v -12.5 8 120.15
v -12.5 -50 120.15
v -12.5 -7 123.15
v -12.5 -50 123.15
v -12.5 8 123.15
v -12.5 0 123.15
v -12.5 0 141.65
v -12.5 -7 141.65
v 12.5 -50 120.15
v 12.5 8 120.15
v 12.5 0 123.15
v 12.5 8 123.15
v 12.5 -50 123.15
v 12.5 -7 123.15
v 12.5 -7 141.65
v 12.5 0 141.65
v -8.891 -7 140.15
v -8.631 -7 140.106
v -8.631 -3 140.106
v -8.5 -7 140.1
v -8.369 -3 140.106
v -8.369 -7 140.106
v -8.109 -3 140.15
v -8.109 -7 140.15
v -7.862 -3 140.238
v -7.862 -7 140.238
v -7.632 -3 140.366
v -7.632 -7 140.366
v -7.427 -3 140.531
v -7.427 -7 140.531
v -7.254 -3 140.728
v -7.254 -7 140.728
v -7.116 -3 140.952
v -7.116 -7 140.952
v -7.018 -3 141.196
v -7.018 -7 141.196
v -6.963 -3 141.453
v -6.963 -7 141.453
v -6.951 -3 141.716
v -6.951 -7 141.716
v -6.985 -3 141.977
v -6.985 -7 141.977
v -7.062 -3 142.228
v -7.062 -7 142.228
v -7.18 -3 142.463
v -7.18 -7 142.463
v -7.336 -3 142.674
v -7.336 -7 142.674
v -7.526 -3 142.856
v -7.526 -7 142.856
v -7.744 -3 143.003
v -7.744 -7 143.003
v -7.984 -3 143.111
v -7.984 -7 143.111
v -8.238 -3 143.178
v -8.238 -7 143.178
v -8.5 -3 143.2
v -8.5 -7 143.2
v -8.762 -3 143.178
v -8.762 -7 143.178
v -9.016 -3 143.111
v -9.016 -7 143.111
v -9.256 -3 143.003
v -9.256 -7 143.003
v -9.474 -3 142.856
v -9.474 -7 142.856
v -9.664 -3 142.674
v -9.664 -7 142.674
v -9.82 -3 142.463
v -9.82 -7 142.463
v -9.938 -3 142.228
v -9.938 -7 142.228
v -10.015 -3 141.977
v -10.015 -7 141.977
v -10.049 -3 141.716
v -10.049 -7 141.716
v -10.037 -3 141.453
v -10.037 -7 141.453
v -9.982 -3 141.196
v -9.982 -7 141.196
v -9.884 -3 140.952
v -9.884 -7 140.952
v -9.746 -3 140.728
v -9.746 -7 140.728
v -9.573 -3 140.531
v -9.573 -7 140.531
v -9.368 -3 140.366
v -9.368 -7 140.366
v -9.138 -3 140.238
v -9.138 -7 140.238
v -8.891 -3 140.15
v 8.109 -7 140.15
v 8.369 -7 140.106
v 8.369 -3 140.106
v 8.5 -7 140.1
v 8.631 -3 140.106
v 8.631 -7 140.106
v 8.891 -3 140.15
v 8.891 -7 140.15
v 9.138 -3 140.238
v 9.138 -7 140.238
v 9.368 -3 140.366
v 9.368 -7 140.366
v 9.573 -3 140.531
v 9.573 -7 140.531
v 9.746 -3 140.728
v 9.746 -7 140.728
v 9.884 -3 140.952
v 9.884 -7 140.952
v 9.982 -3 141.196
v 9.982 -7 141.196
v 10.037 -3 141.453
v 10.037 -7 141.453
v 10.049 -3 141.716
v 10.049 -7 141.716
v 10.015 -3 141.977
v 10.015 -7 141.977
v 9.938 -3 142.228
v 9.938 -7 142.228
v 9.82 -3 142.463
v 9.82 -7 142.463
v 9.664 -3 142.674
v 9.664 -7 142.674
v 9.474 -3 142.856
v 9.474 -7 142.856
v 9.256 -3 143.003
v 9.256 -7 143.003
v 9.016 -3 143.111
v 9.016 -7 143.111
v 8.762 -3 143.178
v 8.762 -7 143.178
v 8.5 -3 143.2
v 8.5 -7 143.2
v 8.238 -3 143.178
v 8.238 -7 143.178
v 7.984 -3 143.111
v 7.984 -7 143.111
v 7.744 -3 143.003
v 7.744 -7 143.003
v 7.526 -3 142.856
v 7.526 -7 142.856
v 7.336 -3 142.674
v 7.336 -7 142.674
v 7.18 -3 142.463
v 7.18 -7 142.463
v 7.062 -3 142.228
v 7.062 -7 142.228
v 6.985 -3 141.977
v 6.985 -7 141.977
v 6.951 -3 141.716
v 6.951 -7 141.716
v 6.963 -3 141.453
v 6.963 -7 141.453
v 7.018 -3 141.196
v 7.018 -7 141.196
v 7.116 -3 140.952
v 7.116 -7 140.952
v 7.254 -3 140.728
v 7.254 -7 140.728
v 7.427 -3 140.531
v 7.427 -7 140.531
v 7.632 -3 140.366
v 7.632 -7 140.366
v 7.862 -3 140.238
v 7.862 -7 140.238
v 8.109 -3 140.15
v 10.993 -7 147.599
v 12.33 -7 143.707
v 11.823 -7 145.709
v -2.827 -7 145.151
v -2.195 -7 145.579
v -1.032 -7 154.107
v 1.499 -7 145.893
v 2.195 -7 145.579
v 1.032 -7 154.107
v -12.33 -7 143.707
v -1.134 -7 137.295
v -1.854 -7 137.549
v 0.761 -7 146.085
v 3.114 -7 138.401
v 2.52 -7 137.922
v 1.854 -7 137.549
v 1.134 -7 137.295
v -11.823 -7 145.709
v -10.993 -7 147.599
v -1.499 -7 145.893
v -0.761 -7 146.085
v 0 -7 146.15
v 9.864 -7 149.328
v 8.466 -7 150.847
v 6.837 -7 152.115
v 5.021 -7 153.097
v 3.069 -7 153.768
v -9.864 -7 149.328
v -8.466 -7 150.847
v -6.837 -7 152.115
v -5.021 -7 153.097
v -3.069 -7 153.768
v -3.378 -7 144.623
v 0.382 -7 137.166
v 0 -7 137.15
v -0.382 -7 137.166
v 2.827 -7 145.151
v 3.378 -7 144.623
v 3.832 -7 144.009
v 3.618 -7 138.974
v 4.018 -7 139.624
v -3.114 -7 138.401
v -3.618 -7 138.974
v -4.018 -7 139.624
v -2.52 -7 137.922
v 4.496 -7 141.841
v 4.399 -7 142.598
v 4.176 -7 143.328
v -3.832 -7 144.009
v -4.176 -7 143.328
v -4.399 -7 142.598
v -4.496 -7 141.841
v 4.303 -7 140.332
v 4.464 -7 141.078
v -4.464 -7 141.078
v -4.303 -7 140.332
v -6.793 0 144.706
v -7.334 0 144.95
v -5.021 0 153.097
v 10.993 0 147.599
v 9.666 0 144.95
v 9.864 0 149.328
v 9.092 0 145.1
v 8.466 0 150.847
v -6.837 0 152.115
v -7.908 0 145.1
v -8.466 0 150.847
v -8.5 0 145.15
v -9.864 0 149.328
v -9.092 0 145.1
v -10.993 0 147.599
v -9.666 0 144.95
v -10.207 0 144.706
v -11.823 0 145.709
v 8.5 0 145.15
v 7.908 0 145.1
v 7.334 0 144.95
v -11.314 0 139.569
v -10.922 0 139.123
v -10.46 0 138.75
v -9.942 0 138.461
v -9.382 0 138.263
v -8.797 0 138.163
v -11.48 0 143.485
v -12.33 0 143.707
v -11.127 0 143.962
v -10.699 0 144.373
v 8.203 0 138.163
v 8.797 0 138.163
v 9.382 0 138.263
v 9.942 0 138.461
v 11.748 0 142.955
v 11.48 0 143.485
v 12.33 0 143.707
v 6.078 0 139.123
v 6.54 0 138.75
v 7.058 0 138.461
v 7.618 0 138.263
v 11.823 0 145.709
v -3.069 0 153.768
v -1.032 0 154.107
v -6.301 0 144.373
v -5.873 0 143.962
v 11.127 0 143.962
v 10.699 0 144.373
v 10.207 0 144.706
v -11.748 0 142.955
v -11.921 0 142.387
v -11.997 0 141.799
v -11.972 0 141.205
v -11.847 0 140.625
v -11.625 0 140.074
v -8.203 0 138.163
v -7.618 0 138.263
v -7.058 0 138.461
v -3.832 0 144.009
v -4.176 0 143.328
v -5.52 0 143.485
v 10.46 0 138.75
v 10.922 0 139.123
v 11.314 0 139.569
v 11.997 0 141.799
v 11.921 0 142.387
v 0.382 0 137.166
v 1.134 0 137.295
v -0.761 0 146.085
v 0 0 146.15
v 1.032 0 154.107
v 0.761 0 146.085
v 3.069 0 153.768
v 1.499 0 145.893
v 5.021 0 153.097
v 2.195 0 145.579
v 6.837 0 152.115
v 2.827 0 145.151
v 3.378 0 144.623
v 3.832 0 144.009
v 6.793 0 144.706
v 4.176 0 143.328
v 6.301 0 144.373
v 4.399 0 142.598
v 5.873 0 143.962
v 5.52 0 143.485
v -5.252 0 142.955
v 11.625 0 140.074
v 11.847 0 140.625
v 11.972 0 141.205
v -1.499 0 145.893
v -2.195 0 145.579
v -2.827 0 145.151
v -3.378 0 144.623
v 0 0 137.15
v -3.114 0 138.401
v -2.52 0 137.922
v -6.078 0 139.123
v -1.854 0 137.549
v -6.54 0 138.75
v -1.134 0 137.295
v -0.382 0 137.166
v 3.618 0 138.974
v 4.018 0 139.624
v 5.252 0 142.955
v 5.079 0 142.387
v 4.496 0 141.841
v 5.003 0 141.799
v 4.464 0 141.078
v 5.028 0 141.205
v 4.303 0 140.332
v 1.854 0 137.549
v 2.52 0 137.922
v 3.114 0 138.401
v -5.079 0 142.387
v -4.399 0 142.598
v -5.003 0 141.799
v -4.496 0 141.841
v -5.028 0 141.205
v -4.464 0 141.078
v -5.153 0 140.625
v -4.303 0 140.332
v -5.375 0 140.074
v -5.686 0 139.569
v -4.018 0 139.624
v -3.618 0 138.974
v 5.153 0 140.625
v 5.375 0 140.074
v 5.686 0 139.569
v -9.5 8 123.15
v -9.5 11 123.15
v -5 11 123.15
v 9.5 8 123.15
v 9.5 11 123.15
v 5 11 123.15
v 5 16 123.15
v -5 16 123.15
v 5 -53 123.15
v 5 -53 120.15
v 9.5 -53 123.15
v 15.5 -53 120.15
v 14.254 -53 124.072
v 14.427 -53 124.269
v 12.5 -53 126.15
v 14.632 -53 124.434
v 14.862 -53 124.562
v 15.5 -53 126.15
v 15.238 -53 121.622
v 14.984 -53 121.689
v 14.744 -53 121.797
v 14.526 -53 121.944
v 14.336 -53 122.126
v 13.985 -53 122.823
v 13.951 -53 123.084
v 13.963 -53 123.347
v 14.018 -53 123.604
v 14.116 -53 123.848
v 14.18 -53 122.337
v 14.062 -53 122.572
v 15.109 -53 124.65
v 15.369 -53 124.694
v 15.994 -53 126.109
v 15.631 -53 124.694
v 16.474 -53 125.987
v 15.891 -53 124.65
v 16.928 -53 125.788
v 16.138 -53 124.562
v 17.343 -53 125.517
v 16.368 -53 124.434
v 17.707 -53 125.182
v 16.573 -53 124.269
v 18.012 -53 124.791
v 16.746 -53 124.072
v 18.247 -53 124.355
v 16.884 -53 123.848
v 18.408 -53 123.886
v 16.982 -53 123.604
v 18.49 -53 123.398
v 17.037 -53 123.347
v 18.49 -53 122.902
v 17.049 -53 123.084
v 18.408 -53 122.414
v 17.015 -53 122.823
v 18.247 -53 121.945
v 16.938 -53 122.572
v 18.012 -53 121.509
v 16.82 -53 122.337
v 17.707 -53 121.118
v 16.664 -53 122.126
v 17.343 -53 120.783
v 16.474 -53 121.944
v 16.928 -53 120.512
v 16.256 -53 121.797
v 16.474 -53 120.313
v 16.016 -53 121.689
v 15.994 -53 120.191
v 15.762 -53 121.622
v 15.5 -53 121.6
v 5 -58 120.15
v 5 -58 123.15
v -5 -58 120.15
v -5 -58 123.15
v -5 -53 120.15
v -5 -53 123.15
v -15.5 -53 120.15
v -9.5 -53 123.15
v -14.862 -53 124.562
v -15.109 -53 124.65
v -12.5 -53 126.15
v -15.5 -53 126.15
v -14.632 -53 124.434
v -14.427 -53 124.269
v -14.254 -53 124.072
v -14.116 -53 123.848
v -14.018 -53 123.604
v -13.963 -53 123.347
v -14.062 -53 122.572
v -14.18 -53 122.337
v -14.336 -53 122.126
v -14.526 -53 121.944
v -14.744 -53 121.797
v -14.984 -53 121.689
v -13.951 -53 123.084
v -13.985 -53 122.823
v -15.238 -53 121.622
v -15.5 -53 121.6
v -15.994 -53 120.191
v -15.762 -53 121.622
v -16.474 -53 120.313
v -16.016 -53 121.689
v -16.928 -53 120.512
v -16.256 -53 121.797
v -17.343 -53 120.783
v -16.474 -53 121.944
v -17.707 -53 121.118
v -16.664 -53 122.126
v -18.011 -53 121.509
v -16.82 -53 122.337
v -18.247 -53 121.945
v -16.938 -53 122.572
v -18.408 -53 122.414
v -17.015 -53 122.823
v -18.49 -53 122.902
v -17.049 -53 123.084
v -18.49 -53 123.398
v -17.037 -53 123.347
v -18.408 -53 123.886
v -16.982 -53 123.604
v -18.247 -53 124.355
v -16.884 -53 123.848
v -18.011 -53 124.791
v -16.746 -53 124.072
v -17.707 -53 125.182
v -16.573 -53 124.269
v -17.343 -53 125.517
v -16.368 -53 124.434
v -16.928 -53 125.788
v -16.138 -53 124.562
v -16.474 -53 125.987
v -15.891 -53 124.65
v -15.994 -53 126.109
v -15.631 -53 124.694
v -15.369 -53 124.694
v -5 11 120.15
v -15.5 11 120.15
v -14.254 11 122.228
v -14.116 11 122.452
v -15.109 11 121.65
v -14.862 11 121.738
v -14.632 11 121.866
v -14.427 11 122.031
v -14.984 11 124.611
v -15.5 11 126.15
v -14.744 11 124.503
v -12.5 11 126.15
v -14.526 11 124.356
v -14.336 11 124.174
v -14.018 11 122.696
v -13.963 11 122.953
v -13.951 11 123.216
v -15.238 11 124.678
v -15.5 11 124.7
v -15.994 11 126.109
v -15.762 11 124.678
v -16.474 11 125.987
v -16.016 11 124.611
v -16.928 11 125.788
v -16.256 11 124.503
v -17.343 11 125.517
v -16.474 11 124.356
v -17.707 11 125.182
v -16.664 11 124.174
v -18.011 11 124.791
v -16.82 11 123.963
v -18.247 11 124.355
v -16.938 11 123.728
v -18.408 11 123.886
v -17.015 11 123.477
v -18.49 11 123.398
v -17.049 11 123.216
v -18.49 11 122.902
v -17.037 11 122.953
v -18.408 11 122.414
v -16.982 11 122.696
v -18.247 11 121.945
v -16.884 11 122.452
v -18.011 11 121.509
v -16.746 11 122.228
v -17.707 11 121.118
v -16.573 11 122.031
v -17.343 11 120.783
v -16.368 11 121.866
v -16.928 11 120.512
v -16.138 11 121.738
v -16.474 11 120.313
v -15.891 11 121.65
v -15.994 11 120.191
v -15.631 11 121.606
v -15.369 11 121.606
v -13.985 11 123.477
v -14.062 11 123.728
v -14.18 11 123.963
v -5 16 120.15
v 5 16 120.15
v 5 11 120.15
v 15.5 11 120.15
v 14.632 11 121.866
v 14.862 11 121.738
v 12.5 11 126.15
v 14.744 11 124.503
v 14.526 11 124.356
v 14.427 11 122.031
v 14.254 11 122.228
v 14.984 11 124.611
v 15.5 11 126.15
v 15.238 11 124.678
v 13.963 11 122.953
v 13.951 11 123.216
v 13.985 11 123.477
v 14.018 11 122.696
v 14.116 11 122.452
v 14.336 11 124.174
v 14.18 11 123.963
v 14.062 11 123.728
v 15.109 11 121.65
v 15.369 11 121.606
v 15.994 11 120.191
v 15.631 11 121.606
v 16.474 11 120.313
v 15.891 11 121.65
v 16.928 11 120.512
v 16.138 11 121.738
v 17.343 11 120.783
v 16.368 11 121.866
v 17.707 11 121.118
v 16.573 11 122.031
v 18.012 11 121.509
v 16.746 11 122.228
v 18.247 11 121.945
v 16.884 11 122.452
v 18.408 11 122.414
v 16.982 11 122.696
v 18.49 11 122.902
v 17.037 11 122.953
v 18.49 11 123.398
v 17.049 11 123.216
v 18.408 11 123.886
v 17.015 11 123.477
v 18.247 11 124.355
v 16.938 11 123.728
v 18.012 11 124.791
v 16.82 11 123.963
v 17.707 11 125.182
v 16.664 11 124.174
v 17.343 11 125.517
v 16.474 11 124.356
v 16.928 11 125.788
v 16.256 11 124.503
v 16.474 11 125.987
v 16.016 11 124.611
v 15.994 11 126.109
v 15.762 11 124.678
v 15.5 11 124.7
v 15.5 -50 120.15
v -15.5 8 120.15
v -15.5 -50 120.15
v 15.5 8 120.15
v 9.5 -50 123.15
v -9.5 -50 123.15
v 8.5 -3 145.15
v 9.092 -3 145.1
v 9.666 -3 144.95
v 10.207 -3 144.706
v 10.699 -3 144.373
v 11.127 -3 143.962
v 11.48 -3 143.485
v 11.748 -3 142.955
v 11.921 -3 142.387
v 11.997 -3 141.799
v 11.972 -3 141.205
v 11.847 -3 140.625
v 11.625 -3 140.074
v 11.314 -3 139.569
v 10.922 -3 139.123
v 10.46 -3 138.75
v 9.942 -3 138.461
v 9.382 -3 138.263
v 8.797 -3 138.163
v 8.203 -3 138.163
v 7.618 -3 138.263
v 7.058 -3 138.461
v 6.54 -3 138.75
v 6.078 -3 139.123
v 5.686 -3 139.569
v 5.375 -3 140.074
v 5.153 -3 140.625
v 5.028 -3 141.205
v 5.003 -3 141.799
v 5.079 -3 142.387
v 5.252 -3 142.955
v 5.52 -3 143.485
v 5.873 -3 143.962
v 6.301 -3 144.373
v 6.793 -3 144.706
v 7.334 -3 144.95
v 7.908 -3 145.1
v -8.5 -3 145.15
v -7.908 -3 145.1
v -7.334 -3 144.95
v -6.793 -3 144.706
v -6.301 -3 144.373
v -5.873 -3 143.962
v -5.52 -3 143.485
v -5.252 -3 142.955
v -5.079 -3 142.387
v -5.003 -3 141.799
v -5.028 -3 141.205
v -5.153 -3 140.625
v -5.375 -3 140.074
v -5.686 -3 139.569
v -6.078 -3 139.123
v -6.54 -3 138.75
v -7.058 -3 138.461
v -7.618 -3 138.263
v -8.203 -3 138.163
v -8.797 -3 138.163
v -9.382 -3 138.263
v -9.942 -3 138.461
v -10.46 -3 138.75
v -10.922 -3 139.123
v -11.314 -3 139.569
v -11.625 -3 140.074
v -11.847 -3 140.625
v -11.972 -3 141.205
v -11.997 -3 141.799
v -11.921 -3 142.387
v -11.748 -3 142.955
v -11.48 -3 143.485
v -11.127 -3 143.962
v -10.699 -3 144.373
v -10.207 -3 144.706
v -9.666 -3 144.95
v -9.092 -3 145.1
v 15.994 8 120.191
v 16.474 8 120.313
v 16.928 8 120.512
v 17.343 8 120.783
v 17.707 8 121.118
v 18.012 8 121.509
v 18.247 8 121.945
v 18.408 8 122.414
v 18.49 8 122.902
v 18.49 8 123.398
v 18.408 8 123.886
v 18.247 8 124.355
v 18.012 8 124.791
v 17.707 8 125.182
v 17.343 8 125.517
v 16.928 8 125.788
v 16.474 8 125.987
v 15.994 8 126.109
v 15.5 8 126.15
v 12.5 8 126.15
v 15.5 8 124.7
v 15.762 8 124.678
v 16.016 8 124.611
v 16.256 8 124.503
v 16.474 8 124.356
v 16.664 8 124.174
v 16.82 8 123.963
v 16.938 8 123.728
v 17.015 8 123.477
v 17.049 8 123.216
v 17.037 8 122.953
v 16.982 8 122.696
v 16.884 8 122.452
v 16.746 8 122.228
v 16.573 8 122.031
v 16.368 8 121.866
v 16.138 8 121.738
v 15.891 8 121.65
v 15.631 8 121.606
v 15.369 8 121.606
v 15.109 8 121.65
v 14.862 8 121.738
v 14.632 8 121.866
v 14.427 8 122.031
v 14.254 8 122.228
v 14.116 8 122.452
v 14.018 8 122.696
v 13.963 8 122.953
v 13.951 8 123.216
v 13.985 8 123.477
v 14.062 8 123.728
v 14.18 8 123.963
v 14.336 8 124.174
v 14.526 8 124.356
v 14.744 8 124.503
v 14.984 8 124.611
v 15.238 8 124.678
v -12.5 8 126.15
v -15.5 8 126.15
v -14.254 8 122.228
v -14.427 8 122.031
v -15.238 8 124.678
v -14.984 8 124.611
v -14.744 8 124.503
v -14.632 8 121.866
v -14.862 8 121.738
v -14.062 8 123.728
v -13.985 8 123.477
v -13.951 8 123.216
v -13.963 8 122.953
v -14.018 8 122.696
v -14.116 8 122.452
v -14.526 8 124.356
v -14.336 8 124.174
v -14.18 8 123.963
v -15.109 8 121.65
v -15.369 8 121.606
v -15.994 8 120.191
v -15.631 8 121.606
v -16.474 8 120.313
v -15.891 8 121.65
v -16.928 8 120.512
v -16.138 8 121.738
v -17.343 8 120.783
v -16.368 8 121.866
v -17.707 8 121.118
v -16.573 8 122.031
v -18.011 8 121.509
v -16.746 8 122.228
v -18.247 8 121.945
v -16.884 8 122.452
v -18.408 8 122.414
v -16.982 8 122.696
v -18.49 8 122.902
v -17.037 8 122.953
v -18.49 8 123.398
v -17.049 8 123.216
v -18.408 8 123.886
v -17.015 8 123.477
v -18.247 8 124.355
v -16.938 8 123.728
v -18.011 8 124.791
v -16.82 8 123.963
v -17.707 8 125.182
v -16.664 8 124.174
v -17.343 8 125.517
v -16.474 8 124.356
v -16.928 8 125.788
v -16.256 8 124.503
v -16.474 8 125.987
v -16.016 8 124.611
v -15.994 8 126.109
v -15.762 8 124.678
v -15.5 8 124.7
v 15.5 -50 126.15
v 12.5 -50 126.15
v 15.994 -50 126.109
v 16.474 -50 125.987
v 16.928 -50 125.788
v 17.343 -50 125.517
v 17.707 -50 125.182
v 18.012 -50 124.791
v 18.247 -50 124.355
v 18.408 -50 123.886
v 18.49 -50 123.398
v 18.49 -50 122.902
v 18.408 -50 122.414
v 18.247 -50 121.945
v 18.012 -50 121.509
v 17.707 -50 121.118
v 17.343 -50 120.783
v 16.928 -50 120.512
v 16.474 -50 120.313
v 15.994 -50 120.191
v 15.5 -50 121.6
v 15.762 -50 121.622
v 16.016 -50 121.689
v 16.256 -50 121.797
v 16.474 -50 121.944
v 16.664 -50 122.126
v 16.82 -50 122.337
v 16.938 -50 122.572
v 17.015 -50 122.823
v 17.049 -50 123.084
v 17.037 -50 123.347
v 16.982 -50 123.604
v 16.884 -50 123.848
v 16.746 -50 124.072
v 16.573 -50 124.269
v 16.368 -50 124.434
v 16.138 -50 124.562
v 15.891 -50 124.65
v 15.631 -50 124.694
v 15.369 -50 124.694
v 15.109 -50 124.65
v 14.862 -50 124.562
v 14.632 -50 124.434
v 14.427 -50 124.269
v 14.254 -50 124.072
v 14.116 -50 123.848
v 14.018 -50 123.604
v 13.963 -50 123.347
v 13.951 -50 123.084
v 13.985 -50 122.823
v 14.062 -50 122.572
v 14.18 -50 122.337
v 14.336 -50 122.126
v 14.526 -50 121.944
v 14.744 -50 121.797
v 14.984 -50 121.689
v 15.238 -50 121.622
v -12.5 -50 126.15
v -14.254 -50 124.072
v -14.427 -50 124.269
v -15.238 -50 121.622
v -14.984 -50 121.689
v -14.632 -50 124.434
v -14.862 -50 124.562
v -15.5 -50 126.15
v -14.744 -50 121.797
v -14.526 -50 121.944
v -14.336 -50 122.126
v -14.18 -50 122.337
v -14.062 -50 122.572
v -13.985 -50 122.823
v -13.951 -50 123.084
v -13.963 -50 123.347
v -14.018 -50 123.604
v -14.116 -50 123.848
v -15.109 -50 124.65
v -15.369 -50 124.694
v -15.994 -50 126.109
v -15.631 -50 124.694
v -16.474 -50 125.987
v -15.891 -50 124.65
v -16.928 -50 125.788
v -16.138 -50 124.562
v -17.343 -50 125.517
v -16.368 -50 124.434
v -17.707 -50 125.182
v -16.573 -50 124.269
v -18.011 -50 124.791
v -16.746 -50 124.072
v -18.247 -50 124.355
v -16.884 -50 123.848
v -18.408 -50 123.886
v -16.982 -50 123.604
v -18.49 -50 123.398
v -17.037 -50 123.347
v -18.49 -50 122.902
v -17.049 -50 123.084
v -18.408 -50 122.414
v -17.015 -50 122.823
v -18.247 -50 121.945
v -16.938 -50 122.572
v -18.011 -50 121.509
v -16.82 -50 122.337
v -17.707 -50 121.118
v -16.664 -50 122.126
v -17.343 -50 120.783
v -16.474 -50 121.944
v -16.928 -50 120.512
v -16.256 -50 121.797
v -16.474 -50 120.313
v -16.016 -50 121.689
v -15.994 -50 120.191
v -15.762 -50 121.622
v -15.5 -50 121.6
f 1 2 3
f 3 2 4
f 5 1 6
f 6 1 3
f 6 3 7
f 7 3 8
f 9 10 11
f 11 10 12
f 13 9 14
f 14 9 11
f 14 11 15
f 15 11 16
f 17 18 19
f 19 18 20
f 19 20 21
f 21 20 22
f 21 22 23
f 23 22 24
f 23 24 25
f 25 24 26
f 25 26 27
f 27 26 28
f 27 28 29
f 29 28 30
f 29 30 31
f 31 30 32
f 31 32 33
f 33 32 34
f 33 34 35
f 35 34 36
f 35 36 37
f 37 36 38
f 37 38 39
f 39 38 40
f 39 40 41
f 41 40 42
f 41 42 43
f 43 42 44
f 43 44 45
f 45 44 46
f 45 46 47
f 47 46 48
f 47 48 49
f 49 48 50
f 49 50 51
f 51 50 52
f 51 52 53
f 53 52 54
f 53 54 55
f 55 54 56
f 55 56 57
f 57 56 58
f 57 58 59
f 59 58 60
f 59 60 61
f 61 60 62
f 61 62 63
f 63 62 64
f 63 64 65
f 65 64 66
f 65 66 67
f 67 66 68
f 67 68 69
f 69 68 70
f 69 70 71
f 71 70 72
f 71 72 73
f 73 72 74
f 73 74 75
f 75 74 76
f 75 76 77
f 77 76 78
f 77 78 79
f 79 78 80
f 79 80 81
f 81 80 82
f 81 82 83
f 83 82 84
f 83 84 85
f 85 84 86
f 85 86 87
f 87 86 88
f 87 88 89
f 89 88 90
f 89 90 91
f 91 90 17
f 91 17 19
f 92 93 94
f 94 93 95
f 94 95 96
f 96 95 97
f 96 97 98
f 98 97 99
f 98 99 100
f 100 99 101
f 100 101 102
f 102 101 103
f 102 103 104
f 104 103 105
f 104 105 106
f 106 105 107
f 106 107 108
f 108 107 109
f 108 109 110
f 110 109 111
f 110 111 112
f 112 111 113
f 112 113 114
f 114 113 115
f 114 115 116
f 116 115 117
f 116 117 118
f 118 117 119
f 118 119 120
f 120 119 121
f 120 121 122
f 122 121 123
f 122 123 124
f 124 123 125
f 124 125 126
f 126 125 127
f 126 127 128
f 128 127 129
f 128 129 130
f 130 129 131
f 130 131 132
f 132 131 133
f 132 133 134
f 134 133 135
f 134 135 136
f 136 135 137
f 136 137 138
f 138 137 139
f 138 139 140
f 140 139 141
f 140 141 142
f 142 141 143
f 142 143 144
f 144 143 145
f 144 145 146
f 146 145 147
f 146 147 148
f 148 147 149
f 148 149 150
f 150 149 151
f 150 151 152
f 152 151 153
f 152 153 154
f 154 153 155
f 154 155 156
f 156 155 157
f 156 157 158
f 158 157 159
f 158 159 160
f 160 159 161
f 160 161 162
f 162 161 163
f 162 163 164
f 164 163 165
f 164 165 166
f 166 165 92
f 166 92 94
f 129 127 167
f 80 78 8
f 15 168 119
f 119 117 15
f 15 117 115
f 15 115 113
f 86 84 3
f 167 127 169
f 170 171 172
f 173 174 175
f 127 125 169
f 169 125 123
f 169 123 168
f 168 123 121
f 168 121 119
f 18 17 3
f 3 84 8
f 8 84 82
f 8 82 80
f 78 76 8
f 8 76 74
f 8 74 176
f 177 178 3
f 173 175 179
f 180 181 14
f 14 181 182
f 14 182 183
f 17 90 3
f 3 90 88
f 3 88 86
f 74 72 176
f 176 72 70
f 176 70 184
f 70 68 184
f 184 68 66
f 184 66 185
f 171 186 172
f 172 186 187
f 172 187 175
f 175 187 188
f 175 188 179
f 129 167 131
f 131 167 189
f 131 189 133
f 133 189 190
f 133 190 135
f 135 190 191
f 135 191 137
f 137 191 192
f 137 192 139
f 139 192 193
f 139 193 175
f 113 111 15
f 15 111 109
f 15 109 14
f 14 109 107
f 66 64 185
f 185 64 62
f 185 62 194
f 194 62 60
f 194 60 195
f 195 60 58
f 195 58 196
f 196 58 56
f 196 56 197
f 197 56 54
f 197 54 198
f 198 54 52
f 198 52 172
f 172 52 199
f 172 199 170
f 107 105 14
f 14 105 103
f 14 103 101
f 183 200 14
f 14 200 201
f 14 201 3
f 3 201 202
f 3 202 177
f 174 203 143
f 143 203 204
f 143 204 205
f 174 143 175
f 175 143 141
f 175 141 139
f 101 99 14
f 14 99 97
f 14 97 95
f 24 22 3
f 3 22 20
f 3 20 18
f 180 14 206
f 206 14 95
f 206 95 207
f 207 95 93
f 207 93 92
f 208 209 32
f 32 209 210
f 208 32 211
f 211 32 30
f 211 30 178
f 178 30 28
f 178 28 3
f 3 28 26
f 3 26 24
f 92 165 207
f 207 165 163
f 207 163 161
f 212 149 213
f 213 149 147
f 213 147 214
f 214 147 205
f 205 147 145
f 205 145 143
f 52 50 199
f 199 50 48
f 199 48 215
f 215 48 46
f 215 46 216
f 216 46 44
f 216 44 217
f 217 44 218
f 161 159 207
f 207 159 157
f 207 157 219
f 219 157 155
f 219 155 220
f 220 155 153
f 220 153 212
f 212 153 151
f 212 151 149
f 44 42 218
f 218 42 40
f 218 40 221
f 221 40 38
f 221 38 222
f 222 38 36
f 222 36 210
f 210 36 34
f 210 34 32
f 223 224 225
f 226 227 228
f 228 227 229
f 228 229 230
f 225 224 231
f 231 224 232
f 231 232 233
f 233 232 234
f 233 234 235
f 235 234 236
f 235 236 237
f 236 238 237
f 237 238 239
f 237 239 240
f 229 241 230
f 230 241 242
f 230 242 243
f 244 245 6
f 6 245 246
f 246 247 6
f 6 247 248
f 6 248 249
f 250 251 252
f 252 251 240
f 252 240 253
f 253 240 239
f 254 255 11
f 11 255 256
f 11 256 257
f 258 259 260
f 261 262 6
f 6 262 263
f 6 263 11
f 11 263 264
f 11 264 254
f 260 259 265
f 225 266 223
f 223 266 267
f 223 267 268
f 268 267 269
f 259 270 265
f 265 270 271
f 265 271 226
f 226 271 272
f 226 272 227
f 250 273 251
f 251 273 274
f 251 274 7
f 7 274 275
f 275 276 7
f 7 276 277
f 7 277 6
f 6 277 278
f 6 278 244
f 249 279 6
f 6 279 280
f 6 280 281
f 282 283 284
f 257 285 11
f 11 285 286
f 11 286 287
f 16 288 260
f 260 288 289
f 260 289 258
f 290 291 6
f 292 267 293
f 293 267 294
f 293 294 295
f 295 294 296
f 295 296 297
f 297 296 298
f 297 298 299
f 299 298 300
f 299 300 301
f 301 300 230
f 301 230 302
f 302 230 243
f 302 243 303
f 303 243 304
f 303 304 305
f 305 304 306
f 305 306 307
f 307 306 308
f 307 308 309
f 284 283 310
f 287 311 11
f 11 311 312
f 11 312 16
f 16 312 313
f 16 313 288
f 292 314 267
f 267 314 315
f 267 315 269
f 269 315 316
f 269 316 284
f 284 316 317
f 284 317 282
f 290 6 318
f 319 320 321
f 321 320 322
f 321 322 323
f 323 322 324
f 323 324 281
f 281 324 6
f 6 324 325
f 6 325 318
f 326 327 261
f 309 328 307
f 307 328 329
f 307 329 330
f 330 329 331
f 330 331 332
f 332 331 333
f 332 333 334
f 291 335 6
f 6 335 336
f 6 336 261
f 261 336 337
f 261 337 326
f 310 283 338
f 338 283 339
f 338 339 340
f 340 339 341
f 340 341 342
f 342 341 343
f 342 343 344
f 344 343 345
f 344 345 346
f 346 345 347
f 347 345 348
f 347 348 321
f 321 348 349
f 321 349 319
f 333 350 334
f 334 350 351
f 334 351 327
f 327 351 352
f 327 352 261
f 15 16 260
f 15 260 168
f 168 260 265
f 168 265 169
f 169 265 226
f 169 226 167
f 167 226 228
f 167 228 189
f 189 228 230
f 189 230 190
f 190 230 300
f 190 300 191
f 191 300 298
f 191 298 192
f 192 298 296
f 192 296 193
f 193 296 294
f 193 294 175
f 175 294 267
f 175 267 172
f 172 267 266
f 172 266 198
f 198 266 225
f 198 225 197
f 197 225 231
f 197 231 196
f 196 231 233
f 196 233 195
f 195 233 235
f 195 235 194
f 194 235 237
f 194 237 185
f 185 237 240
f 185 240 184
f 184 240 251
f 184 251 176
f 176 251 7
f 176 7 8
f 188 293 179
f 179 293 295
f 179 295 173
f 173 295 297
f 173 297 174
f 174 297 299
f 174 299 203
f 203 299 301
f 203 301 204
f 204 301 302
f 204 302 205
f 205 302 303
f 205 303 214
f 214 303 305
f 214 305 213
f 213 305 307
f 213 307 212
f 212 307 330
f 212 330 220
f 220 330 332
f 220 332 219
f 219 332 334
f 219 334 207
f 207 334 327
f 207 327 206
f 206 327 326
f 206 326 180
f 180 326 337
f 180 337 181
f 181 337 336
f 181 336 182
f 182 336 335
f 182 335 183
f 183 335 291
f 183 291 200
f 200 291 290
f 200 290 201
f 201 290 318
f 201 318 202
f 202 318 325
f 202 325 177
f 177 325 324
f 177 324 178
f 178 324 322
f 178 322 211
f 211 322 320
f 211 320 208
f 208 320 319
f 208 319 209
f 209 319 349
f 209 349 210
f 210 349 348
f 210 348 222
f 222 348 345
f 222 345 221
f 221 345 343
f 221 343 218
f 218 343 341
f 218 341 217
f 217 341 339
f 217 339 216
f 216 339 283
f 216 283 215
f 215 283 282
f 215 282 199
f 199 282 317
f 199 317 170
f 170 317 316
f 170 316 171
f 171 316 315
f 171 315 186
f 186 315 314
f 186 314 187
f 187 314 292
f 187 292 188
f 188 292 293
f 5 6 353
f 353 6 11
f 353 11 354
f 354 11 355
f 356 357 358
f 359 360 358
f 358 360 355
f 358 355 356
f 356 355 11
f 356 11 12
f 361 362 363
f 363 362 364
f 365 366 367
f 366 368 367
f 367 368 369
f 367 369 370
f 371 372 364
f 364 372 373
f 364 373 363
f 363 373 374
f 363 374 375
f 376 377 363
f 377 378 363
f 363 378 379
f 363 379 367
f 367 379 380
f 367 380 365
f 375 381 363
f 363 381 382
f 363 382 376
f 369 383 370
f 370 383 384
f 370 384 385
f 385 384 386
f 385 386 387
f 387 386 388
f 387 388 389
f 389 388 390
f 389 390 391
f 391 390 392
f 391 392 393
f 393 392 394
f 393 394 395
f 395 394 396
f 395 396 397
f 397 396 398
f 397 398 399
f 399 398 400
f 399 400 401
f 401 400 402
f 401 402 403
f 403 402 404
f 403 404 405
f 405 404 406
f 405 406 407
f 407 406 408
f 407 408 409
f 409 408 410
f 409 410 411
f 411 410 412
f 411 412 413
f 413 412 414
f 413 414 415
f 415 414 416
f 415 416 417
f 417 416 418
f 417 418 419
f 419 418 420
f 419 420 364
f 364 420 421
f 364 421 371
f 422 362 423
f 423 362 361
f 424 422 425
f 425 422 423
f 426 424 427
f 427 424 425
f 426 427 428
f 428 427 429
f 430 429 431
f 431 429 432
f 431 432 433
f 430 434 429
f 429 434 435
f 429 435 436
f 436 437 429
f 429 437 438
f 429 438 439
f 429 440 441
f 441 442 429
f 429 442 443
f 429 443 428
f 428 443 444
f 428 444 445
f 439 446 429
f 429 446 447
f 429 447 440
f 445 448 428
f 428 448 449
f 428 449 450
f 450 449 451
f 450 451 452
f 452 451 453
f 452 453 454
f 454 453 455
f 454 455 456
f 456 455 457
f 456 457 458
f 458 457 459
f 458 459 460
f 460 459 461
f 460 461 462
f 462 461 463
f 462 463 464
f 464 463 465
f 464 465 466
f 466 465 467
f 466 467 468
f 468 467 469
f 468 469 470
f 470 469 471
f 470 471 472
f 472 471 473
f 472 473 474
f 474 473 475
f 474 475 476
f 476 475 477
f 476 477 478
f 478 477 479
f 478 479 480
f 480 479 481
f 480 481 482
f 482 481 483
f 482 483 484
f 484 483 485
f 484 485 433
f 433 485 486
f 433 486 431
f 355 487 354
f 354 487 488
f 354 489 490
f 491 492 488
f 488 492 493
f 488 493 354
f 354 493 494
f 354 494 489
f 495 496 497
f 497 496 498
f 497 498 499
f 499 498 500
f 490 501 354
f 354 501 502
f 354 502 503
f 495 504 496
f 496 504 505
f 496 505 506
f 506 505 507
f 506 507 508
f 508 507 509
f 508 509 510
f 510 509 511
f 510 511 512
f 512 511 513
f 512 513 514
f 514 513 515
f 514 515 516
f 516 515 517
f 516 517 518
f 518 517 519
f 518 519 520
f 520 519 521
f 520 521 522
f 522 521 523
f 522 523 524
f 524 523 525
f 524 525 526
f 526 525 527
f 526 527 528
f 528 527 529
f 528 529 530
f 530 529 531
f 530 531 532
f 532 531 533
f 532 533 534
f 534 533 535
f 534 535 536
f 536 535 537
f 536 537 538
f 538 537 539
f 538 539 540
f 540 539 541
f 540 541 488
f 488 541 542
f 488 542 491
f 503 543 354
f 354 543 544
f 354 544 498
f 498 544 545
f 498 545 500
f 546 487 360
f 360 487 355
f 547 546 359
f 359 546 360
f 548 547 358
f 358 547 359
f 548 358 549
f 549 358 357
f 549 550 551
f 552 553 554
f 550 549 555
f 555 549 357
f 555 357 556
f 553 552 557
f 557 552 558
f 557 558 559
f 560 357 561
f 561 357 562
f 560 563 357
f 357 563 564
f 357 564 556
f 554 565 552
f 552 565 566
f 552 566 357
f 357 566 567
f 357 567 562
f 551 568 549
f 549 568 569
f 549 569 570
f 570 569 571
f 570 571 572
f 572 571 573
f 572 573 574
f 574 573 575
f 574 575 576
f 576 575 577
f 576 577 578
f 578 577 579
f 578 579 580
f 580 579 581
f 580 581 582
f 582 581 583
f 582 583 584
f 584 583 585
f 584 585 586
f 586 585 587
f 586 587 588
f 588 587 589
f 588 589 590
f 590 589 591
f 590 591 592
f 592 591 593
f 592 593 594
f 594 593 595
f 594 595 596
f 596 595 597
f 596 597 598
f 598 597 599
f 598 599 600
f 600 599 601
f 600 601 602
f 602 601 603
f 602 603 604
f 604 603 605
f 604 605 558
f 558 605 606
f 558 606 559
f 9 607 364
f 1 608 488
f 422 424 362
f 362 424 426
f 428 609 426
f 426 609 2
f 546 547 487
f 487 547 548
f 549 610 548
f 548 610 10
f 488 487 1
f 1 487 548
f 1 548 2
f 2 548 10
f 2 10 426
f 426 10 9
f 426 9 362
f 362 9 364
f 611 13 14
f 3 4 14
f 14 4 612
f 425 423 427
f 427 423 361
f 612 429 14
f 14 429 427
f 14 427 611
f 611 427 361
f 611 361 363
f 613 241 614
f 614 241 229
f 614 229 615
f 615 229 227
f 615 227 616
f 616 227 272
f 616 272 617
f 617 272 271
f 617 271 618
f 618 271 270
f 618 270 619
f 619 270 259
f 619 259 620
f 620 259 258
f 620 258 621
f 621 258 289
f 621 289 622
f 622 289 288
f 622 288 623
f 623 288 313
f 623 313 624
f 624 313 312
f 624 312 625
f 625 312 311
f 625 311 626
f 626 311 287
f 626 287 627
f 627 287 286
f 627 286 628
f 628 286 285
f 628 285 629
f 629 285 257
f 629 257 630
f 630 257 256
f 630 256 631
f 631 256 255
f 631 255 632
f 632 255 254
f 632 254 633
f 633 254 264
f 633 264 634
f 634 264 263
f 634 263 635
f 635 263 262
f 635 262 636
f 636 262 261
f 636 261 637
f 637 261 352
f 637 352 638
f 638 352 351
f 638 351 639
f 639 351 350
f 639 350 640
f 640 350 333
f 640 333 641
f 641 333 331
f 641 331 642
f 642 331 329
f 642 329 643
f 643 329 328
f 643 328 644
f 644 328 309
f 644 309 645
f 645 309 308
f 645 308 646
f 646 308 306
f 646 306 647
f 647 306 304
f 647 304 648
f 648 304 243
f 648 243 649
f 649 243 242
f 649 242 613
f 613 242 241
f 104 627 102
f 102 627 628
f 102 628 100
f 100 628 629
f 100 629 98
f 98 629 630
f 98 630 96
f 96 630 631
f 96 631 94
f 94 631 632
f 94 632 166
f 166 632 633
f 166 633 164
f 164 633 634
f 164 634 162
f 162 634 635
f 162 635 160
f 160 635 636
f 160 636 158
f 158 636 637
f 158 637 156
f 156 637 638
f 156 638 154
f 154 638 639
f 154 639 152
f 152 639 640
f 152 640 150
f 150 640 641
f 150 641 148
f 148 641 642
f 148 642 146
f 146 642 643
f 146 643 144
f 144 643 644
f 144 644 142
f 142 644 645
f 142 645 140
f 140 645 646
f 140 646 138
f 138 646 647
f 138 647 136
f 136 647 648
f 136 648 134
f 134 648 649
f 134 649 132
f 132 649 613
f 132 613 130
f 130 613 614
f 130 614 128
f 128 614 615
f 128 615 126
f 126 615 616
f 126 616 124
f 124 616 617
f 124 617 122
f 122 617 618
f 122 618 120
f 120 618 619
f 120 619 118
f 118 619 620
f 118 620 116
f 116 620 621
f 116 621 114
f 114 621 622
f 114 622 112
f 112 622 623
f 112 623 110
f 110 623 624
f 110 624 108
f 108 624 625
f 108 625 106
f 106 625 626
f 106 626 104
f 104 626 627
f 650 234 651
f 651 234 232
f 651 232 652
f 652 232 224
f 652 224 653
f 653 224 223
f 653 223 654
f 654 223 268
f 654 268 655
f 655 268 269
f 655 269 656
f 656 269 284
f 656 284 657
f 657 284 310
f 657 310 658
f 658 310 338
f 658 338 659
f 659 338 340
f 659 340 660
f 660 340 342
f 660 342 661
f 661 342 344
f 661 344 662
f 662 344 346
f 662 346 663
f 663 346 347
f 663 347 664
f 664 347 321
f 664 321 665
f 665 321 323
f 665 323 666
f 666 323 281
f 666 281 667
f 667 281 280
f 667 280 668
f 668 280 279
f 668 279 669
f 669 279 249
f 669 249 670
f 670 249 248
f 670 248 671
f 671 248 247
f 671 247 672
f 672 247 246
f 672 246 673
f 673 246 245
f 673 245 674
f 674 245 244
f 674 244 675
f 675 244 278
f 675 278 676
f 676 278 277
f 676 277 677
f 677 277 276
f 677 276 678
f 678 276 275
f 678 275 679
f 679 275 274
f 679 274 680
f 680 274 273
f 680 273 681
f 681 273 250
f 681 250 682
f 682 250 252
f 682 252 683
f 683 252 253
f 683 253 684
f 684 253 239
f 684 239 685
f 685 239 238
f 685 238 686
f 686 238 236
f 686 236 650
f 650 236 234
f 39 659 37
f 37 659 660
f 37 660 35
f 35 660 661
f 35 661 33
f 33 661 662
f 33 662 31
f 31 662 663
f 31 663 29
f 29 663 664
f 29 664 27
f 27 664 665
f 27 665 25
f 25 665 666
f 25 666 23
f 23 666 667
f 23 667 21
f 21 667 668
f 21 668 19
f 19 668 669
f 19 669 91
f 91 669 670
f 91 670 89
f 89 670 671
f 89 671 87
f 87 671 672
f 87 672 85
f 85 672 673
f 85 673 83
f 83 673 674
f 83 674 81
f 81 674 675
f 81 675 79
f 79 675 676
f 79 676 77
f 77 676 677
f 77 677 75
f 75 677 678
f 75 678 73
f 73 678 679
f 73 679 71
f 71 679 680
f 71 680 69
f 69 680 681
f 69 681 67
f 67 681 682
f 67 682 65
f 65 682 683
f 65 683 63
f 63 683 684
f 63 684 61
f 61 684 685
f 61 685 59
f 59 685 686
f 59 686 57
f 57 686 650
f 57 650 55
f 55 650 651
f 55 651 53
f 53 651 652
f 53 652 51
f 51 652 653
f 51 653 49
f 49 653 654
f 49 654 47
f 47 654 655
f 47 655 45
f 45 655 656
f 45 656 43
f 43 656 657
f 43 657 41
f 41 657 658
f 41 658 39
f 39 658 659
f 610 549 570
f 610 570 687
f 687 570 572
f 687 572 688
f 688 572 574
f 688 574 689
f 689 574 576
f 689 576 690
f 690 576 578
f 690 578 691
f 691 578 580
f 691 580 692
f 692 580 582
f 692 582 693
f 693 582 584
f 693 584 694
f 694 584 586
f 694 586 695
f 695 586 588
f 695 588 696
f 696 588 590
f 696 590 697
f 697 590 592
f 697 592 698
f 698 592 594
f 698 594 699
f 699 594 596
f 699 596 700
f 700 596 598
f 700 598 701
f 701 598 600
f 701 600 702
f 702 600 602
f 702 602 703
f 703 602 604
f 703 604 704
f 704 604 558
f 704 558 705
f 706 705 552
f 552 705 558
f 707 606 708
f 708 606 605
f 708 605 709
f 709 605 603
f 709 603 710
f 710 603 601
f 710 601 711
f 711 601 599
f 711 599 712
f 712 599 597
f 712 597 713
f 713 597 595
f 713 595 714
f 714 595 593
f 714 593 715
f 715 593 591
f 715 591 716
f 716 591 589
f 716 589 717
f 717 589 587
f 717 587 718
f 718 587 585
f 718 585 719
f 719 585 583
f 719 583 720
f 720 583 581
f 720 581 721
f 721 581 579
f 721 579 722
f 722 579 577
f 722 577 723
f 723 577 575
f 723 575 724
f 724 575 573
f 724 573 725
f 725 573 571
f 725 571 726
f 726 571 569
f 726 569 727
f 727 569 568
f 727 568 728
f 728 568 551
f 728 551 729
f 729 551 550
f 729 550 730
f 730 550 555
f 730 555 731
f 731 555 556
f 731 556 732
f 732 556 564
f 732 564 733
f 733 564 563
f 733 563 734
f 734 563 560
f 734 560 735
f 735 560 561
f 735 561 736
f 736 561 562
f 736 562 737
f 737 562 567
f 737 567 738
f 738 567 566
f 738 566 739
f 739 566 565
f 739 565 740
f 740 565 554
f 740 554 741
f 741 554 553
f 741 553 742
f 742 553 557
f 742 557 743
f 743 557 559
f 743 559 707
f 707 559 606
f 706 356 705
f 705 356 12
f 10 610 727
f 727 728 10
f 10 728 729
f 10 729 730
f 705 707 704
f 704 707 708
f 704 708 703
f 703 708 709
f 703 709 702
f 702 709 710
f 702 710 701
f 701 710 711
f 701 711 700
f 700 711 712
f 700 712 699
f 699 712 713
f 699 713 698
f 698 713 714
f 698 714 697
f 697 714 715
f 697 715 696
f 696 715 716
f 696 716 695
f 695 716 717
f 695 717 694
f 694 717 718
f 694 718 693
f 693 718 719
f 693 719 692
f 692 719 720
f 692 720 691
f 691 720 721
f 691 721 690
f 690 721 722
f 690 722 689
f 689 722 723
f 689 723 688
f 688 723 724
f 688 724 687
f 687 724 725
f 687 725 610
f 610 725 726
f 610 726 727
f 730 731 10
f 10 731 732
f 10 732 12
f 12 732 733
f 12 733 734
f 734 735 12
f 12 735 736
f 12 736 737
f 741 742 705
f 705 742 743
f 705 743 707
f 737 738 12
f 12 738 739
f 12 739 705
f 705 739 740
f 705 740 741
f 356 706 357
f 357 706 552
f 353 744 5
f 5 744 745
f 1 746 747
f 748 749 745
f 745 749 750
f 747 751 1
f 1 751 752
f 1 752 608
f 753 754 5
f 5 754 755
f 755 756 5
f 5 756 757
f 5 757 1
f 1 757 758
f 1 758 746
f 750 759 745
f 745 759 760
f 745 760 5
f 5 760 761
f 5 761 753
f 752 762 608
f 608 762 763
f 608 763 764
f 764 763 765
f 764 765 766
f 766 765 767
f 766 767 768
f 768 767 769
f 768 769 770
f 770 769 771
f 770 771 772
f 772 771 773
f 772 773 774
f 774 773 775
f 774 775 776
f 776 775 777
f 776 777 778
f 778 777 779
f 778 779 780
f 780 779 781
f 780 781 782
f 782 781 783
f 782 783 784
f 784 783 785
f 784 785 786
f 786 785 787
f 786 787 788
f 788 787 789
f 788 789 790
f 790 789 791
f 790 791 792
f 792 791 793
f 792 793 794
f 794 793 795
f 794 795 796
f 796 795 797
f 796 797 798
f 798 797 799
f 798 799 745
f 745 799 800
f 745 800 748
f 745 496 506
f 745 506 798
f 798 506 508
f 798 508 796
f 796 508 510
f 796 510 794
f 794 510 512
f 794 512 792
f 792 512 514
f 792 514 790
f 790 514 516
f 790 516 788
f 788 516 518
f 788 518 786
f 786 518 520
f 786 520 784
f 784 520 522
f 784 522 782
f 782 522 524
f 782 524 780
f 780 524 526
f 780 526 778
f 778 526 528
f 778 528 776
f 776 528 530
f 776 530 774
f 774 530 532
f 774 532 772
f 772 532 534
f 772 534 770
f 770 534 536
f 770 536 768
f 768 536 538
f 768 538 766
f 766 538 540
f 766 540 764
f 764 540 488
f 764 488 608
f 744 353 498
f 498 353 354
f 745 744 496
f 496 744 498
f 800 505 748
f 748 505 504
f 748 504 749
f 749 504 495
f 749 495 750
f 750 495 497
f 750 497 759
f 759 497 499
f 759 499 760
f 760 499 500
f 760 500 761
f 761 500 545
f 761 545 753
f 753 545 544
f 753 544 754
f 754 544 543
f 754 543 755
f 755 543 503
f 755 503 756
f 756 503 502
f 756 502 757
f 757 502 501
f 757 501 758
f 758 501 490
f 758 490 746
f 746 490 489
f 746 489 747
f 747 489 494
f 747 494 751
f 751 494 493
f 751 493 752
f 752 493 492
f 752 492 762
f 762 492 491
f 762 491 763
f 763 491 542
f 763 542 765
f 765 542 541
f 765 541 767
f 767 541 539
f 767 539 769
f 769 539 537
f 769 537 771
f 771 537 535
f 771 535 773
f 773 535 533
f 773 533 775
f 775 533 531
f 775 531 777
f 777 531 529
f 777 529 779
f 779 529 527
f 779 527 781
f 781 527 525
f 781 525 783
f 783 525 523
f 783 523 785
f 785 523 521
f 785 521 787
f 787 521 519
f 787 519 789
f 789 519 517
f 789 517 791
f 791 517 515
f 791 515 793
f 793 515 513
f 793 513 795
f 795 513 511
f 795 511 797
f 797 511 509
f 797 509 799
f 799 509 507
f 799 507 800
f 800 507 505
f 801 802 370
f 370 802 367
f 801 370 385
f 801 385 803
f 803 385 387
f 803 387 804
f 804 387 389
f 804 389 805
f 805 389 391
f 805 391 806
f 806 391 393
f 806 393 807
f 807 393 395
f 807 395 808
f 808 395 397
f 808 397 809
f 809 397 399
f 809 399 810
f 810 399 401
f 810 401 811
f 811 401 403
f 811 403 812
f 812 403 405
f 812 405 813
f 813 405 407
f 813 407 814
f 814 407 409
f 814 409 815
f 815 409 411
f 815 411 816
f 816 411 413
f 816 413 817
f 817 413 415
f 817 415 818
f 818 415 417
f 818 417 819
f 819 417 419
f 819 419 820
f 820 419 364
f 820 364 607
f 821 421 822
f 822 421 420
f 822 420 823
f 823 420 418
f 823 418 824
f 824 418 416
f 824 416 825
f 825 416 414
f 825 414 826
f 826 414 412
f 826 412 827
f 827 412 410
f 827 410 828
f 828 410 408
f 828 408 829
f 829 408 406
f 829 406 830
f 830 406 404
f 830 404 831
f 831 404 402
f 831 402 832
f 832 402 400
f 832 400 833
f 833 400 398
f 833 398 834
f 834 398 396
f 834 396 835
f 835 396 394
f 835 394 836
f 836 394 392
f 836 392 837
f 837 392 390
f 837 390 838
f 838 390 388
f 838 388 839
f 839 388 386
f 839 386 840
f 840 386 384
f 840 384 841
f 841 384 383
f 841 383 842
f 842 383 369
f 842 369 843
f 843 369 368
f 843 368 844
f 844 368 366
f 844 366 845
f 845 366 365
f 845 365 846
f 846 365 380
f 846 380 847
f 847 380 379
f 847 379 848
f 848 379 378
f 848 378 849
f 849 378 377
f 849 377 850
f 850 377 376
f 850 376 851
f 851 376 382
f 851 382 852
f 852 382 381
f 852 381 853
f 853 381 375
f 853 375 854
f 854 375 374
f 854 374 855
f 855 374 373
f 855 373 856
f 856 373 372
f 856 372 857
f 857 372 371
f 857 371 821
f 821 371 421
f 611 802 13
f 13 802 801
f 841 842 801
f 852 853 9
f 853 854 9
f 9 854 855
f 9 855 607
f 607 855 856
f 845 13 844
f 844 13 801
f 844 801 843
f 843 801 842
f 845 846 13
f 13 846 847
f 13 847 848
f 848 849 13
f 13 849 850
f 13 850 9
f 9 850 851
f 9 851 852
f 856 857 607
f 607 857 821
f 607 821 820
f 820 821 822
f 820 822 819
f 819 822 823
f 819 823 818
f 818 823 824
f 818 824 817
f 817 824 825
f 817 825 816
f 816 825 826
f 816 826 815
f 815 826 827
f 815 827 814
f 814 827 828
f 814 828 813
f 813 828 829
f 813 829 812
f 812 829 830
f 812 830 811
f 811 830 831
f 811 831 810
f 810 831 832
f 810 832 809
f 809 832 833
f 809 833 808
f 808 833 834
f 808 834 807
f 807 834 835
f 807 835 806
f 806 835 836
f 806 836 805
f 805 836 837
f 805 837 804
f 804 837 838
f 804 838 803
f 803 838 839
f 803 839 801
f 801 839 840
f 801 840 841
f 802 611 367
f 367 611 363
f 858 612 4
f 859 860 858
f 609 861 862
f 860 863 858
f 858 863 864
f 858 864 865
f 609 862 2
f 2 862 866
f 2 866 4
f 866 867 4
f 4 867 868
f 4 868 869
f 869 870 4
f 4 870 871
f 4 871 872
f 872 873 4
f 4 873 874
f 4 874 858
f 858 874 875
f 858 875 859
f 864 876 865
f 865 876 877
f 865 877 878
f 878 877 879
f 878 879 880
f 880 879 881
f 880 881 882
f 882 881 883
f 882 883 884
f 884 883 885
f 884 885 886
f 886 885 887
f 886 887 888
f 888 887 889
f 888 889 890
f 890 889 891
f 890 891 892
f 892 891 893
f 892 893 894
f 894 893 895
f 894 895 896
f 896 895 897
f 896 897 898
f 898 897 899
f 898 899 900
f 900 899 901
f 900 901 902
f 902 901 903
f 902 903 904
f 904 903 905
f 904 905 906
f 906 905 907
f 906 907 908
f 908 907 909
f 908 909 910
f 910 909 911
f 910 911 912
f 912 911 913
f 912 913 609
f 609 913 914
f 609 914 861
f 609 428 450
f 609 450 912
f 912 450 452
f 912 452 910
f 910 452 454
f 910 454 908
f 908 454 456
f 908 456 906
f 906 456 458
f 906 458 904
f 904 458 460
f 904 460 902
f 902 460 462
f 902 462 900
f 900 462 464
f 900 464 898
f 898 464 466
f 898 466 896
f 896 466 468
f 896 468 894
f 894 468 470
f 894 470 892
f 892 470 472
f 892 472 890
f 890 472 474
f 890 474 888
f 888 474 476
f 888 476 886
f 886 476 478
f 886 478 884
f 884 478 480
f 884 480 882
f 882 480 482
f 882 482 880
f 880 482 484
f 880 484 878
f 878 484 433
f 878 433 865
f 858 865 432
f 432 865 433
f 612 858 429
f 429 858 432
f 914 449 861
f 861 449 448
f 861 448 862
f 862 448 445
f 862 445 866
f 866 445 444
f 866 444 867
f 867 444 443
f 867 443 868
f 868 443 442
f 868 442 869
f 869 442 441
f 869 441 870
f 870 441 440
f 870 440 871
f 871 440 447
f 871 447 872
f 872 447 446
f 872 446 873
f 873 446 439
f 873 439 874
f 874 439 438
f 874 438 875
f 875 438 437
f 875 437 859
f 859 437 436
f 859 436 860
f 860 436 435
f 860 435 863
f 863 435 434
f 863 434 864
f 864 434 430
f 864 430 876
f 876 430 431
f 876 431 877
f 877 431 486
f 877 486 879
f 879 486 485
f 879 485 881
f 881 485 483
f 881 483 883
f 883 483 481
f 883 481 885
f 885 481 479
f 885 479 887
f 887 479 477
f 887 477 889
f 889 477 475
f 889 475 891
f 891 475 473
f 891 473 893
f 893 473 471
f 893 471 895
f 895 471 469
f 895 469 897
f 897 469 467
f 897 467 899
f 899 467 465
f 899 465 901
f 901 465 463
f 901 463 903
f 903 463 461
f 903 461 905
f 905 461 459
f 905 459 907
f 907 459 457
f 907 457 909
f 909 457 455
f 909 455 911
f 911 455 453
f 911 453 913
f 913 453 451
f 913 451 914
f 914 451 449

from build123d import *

# Parameters (mm, degrees)
SKETCH11_R          = 1.55
SKETCH11_R_2        = 4.5
BOSS_EXTRUDE1_DEPTH = 7
BOSS_EXTRUDE2_DEPTH = 3
SKETCH13_R          = 3.5
CUT_EXTRUDE1_DEPTH  = 3
SKETCH14_R          = 1.55
BOSS_EXTRUDE3_DEPTH = 3
BOSS_EXTRUDE4_START = -3
SKETCH15_R          = 1.55
BOSS_EXTRUDE4_DEPTH = 3


with BuildPart() as part:
    # Sketch11 → Boss-Extrude1 (new body)
    with BuildSketch(Plane(origin=(0, 0, 51.65), x_dir=(1, 0, 0), z_dir=(0, -1, 0))):
        with BuildLine():
            Line((12.5, 90), (12.5, 71.5))
            Line((12.5, 71.5), (-12.5, 71.5))
            Line((-12.5, 71.5), (-12.5, 90))
            ThreePointArc((-12.5, 90), (0, 102.5), (12.5, 90))
        make_face()
        with Locations(Location((-8.5, 90, 0), (0, 0, 270))):
            Circle(SKETCH11_R, mode=Mode.SUBTRACT)
        with Locations(Location((8.5, 90, 0), (0, 0, 270))):
            Circle(SKETCH11_R, mode=Mode.SUBTRACT)
        with Locations(Location((0, 90, 0), (0, 0, 270))):
            Circle(SKETCH11_R_2, mode=Mode.SUBTRACT)
    extrude(amount=BOSS_EXTRUDE1_DEPTH)

    # Sketch12 → Boss-Extrude2 (add)
    with BuildSketch(Plane(origin=(0, 0, 123.15), x_dir=(-1, 0, 0), z_dir=(0, 0, -1))):
        Polygon((-12.5, 0), (-12.5, 11), (-5, 11), (-5, 16), (5, 16), (5, 11), (12.5, 11), (12.5, 0), (12.5, -7), (12.5, -53), (5, -53), (5, -58), (-5, -58), (-5, -53), (-12.5, -53), (-12.5, -7), align=None)
    extrude(amount=BOSS_EXTRUDE2_DEPTH)

    # Sketch13 → Cut-Extrude1 (cut)
    with BuildSketch(Plane(origin=(0, 0, 0), x_dir=(1, 0, 0), z_dir=(0, 1, 0))):
        with Locations(Location((-8.5, -141.65, 0), (0, 0, 270))):
            Circle(SKETCH13_R)
        with Locations(Location((8.5, -141.65, 0), (0, 0, 270))):
            Circle(SKETCH13_R)
    extrude(amount=-CUT_EXTRUDE1_DEPTH, mode=Mode.SUBTRACT)

    # Sketch14 → Boss-Extrude3 (add)
    with BuildSketch(Plane(origin=(0, 11, 0), x_dir=(1, 0, 0), z_dir=(0, 1, 0))):
        with BuildLine():
            Line((15.5, -120.15), (-15.5, -120.15))
            ThreePointArc((-15.5, -120.15), (-18.5, -123.15), (-15.5, -126.15))
            Line((-15.5, -126.15), (-12.5, -126.15))
            Line((-12.5, -126.15), (-9.5, -123.15))
            Line((-9.5, -123.15), (9.5, -123.15))
            Line((9.5, -123.15), (12.5, -126.15))
            Line((12.5, -126.15), (15.5, -126.15))
            ThreePointArc((15.5, -126.15), (18.5, -123.15), (15.5, -120.15))
        make_face()
        with Locations(Location((-15.5, -123.15, 0), (0, 0, 270))):
            Circle(SKETCH14_R, mode=Mode.SUBTRACT)
        with Locations(Location((15.5, -123.15, 0), (0, 0, 270))):
            Circle(SKETCH14_R, mode=Mode.SUBTRACT)
    extrude(amount=-BOSS_EXTRUDE3_DEPTH)

    # Sketch15 → Boss-Extrude4 (add)
    with BuildSketch(Plane(origin=(0, -53, 0), x_dir=(-1, 0, 0), z_dir=(0, -1, 0)).offset(BOSS_EXTRUDE4_START)):
        with BuildLine():
            Line((15.5, -120.15), (-15.5, -120.15))
            ThreePointArc((-15.5, -120.15), (-18.5, -123.15), (-15.5, -126.15))
            Line((-15.5, -126.15), (-12.5, -126.15))
            Line((-12.5, -126.15), (-9.5, -123.15))
            Line((-9.5, -123.15), (9.5, -123.15))
            Line((9.5, -123.15), (12.5, -126.15))
            Line((12.5, -126.15), (15.5, -126.15))
            ThreePointArc((15.5, -126.15), (18.5, -123.15), (15.5, -120.15))
        make_face()
        with Locations(Location((15.5, -123.15, 0), (0, 0, 270))):
            Circle(SKETCH15_R, mode=Mode.SUBTRACT)
        with Locations(Location((-15.5, -123.15, 0), (0, 0, 270))):
            Circle(SKETCH15_R, mode=Mode.SUBTRACT)
    extrude(amount=BOSS_EXTRUDE4_DEPTH)


solid = part.part
